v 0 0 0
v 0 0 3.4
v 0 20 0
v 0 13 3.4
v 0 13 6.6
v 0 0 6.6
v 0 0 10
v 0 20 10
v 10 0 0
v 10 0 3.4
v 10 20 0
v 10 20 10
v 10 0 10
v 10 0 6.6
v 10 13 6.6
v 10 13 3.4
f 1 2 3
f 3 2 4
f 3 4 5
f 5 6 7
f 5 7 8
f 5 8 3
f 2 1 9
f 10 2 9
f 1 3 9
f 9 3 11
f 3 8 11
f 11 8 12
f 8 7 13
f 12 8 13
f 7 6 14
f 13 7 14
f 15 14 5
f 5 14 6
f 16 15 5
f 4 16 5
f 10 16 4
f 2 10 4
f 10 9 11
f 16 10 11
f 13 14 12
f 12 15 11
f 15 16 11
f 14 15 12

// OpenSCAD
l = 10;
b = 20;
sb = 15;
h = 10;
sh= 3.2;

difference(){
	cube([l,b,h]);
	translate([-1,-1,h/2-sh/2]) cube([l+2,sb-1,sh]);
}
